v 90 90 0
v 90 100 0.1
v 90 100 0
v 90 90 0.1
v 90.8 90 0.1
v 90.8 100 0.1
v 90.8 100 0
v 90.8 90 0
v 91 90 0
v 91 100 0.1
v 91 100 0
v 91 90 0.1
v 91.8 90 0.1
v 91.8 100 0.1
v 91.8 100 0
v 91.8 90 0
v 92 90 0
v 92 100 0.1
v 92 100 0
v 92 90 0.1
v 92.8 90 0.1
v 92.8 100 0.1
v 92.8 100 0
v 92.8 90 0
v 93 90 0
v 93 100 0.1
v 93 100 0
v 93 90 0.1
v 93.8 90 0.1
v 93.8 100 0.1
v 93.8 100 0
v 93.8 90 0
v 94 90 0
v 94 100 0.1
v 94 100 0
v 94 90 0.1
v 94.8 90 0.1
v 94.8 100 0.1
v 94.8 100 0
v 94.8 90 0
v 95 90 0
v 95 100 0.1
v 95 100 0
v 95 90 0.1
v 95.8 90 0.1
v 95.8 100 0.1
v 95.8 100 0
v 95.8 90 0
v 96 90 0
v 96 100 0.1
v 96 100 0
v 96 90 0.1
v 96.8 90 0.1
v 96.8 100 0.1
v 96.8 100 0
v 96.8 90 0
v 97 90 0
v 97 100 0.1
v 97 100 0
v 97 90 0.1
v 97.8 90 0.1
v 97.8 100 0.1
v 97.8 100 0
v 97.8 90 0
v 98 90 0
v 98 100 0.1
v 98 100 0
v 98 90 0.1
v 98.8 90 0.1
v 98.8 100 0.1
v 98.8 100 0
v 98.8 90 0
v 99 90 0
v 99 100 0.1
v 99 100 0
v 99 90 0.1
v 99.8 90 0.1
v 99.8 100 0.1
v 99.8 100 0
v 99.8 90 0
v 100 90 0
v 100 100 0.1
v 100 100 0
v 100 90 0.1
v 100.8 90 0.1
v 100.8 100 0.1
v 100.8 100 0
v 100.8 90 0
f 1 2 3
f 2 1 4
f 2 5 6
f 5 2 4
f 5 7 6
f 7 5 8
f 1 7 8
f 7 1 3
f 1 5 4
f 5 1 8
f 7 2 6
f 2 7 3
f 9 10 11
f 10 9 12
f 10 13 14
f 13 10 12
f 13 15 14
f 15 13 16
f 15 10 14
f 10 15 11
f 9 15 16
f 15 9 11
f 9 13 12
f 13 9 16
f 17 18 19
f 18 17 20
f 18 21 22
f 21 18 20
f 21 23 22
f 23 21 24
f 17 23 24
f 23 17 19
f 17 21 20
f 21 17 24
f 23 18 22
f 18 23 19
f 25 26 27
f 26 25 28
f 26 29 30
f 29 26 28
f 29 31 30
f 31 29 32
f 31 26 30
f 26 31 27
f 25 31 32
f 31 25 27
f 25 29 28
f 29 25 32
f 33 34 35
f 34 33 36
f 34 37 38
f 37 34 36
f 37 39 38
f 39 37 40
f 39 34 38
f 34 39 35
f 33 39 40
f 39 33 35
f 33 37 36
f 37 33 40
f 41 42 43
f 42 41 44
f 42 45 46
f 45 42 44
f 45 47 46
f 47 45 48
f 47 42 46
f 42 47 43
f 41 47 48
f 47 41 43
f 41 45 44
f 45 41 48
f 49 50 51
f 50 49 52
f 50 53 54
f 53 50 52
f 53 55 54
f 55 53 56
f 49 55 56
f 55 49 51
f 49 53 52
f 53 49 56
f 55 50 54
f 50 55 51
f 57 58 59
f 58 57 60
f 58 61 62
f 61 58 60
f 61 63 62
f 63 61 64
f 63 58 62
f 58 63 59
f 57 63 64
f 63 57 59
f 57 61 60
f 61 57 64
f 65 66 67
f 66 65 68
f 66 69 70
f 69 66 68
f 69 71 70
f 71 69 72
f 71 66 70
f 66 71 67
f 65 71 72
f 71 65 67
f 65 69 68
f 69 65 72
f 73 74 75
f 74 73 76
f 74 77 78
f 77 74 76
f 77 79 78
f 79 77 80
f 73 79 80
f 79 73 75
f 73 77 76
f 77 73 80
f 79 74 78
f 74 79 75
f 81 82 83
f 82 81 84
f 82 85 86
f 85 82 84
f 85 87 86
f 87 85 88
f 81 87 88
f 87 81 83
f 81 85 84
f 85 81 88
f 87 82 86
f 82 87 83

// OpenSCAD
translate([10+80,10+80,0])
        for (i = [0 : 10]){
            translate([i,0,0])
                cube(size = [0.8,10,0.1]);
    }
